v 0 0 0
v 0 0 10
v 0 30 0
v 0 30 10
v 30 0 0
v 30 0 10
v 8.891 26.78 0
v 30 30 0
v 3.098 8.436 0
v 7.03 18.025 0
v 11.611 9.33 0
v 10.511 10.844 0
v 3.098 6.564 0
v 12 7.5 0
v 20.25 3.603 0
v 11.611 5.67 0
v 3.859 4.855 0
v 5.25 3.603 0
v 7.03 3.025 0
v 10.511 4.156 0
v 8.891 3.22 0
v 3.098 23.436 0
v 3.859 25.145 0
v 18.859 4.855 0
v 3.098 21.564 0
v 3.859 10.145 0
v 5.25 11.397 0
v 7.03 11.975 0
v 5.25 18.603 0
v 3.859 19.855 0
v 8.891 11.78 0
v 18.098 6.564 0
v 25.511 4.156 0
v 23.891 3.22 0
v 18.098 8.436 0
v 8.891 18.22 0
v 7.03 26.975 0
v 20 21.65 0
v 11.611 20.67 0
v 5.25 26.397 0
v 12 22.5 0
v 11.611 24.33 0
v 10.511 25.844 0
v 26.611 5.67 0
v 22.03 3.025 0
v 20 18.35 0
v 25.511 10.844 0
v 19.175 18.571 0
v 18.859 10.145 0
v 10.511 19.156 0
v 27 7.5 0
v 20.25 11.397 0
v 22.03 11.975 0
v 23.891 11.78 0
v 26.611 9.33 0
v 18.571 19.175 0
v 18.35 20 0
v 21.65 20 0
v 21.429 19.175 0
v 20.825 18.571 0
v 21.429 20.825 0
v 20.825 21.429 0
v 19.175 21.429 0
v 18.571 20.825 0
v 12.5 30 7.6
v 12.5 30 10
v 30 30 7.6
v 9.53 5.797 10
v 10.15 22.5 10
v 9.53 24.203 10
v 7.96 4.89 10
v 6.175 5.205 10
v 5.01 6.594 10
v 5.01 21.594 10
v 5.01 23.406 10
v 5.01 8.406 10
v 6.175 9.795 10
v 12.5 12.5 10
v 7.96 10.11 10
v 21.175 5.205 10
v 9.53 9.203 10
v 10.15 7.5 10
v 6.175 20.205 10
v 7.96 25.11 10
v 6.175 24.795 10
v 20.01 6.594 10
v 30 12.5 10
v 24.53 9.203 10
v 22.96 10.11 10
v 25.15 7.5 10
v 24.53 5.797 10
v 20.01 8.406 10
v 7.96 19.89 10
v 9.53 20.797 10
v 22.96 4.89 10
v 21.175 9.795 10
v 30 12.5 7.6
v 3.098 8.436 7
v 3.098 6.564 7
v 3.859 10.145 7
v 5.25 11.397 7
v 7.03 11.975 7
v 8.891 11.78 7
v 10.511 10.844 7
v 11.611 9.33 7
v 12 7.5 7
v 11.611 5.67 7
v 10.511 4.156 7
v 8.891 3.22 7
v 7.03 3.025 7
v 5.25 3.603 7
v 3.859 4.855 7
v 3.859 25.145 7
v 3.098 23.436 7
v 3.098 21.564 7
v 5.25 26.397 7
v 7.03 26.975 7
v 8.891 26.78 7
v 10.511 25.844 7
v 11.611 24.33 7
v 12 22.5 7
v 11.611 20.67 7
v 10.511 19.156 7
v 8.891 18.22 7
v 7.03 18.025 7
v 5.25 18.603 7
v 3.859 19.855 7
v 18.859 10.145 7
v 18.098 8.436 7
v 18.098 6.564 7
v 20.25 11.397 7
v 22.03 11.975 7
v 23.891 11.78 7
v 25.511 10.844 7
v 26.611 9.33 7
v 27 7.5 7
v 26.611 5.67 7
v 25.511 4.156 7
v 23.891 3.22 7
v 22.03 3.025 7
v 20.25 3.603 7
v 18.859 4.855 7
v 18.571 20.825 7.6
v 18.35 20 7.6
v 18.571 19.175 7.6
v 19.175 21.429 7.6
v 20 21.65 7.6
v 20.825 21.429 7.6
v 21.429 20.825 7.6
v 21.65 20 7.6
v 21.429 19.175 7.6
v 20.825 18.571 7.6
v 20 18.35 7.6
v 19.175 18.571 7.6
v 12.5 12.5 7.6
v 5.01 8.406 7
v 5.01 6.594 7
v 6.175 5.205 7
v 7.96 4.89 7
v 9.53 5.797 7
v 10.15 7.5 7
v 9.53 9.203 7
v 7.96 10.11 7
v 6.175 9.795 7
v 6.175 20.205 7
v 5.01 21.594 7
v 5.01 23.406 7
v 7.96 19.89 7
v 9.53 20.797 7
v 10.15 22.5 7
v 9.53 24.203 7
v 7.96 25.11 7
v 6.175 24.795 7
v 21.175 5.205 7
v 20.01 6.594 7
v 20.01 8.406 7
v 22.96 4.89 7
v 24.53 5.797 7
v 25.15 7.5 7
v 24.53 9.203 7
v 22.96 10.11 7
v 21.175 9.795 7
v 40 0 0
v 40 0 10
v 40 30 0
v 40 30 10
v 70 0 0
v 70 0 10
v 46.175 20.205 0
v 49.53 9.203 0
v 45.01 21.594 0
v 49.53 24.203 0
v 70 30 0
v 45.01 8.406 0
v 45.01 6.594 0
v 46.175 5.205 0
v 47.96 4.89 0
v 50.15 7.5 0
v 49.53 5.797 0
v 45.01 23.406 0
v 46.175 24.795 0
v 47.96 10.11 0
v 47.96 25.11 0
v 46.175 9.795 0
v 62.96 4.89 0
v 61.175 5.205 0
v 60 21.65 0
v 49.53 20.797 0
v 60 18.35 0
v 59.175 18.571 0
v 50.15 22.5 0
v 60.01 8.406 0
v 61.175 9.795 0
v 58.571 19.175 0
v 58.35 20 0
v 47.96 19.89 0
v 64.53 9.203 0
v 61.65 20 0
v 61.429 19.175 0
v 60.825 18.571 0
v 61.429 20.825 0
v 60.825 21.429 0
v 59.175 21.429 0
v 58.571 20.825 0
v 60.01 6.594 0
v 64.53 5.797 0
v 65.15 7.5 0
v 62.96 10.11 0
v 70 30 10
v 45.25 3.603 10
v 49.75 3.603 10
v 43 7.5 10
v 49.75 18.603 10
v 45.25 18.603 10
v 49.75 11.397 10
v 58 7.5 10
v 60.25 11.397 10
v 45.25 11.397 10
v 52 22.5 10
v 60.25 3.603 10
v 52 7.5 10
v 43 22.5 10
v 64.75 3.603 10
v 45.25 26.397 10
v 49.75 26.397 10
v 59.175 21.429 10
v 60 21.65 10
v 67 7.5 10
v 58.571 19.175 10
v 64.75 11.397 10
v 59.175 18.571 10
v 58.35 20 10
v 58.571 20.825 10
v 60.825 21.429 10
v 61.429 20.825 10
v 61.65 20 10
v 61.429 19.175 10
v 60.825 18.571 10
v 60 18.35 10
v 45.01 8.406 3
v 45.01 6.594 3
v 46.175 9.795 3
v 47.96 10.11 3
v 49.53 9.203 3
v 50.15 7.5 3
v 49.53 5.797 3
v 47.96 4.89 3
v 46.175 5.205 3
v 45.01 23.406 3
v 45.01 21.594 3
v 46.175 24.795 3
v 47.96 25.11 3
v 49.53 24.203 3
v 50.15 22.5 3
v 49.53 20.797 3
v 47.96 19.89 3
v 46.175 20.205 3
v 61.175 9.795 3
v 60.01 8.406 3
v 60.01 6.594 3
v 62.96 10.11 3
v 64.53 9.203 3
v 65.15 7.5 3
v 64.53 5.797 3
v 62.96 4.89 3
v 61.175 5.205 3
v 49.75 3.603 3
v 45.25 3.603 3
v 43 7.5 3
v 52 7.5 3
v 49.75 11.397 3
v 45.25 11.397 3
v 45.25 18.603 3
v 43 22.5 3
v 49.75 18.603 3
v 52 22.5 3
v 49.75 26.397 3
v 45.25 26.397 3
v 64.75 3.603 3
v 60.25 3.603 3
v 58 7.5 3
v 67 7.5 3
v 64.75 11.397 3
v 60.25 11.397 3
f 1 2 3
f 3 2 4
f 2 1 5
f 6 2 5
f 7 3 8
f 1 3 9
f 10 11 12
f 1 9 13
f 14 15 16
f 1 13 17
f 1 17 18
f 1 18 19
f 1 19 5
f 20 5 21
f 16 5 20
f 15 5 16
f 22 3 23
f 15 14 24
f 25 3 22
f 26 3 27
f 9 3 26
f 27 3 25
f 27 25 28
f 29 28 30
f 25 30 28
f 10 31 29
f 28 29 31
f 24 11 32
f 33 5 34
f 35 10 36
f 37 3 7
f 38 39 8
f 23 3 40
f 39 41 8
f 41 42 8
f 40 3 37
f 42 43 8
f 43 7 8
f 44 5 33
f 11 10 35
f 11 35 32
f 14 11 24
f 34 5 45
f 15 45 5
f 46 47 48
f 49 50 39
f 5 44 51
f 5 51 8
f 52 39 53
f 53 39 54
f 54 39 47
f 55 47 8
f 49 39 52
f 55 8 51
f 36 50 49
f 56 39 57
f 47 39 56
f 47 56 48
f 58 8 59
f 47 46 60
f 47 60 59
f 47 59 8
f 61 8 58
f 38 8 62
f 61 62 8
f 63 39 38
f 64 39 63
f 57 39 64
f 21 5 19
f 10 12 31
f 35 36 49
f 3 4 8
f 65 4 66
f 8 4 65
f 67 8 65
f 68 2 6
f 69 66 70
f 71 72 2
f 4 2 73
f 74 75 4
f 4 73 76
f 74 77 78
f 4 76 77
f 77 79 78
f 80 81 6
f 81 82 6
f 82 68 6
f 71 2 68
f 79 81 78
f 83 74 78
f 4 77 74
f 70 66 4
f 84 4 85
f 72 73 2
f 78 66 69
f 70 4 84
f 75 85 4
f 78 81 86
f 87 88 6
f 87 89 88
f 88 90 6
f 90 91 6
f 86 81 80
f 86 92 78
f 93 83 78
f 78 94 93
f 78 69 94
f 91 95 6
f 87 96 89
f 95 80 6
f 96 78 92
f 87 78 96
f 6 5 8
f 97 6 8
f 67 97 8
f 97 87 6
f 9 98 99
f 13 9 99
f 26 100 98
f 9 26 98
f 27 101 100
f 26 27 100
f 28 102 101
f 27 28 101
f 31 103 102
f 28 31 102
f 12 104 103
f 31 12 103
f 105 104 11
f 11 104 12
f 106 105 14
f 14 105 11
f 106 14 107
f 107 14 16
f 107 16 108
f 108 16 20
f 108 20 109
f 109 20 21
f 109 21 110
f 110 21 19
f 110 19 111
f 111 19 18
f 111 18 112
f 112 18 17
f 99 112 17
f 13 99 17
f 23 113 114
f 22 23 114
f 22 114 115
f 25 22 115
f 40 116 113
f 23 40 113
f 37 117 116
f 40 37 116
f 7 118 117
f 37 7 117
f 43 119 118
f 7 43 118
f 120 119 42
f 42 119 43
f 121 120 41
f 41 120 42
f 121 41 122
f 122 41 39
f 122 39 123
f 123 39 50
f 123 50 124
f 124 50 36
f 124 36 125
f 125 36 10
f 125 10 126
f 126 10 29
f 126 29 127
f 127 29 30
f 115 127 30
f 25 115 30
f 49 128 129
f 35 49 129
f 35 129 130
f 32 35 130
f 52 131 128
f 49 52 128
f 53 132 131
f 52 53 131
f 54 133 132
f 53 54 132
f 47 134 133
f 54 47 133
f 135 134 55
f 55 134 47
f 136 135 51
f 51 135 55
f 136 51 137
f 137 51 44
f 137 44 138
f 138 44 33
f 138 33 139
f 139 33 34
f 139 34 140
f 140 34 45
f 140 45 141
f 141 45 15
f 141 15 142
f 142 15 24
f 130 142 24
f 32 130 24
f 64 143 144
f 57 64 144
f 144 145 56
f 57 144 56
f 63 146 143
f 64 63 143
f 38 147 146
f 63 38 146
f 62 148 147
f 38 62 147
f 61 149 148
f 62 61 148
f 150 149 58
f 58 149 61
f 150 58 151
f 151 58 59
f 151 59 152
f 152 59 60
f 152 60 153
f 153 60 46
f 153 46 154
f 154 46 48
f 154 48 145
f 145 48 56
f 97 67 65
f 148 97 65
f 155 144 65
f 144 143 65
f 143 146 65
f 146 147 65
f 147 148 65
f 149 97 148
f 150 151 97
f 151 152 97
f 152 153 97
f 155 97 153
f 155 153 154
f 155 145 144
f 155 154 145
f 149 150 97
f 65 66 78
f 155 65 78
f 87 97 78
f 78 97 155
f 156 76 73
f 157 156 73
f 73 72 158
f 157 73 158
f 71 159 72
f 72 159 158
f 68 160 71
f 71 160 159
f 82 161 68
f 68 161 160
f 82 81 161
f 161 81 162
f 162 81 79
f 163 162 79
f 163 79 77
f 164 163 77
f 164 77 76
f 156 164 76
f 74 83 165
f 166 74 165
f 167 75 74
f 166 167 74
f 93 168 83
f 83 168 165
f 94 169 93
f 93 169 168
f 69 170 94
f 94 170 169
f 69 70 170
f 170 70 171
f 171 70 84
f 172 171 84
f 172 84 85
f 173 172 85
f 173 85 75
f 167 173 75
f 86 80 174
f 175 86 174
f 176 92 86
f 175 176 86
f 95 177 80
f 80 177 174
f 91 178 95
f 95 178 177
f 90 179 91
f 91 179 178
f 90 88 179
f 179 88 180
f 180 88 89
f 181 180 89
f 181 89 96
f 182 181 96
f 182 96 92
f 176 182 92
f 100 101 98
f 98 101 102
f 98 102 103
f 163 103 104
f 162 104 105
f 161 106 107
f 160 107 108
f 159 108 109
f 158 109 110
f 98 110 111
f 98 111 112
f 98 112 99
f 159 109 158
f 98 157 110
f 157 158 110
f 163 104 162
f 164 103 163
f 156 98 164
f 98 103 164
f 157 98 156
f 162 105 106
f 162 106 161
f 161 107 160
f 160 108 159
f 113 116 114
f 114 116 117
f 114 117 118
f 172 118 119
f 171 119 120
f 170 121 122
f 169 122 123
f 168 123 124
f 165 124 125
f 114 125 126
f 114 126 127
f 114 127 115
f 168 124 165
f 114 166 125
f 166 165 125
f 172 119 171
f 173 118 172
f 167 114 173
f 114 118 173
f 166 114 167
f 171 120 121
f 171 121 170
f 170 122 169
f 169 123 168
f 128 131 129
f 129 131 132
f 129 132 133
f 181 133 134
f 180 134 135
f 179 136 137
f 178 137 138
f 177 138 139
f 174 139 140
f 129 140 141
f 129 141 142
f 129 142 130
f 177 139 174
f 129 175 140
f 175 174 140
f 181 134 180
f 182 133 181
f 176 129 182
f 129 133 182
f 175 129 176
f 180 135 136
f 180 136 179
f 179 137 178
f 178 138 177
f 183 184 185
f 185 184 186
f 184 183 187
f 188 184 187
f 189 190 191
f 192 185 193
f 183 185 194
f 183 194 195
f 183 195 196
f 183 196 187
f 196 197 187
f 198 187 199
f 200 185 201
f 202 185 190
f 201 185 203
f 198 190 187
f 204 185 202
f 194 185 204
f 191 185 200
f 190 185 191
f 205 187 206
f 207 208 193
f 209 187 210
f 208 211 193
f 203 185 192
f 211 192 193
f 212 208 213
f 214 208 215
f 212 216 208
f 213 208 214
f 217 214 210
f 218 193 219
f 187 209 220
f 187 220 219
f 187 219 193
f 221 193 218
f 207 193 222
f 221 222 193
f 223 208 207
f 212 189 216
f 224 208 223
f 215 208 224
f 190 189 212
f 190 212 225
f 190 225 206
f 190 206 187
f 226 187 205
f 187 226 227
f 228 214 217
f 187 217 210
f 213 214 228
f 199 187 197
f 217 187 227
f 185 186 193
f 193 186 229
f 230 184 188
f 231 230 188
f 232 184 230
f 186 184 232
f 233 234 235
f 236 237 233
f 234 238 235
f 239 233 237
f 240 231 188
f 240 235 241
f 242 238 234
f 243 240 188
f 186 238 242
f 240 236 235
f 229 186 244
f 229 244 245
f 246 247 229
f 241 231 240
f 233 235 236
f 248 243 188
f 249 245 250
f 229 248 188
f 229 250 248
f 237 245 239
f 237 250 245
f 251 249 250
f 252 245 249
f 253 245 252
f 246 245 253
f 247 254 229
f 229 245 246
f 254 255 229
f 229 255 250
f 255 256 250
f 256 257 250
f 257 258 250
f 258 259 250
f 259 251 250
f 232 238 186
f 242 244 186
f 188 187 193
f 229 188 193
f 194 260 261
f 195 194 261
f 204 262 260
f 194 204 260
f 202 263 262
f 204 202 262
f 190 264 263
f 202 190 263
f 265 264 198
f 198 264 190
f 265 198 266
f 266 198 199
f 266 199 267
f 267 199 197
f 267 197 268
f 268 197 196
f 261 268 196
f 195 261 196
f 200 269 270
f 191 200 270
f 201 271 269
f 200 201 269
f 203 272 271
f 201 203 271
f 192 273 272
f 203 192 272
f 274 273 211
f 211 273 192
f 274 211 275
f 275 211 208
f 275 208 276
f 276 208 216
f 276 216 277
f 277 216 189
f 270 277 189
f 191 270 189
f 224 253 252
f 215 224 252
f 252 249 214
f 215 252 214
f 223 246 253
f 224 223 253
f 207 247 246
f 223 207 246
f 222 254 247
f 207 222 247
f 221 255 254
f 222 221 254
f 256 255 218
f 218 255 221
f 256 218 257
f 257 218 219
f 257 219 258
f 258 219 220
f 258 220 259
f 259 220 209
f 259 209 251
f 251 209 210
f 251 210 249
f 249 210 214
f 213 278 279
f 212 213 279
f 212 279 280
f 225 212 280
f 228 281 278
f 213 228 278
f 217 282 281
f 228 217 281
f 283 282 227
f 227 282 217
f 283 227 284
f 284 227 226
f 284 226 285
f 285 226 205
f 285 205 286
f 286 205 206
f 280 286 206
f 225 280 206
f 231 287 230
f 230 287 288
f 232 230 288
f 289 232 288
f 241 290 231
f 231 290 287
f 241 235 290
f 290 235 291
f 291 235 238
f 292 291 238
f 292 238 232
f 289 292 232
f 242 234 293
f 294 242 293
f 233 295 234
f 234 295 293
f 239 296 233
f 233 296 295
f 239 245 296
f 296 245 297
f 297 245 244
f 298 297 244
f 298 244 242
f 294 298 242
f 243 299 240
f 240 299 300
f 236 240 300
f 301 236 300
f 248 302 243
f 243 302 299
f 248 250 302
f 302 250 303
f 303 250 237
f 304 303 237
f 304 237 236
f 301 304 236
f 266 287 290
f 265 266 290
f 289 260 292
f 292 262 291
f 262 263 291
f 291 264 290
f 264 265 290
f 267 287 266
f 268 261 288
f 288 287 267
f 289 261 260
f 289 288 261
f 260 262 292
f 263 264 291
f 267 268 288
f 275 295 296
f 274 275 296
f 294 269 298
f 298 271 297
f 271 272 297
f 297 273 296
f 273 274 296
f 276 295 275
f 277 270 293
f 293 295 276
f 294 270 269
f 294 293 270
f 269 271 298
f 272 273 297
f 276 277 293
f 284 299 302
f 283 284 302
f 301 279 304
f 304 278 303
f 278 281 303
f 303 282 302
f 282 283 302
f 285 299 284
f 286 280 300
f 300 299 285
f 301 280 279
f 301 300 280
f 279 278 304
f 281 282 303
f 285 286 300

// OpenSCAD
difference() {
cube([30,30,10]);
translate([12.5,12.5,7.6])
cube([30,30,10]);
translate([20,20,0])
cylinder($fn=12,r=3.3/2,h=100,center=true);
translate([22.5,7.5,0])
cylinder(r=5.3/2,h=100,center=true);
translate([7.5,22.5,0])
cylinder(r=5.3/2,h=100,center=true);
translate([7.5,7.5,0])
cylinder(r=5.3/2,h=100,center=true);


translate([22.5,7.5,-1])
cylinder(r=9/2,h=8);
translate([7.5,22.5,-1])
cylinder(r=9/2,h=8);
translate([7.5,7.5,-1])
cylinder(r=9/2,h=8);
}

translate([40,0,0])
difference() {
cube([30,30,10]);
translate([20,20,0])
cylinder($fn=12,r=3.3/2,h=100,center=true);
translate([22.5,7.5,0])
cylinder(r=5.3/2,h=100,center=true);
translate([7.5,22.5,0])
cylinder(r=5.3/2,h=100,center=true);
translate([7.5,7.5,0])
cylinder(r=5.3/2,h=100,center=true);


translate([22.5,7.5,8])
cylinder($fn=6,r=9/2,h=10,center=true);
translate([7.5,22.5,8])
cylinder($fn=6,r=9/2,h=10,center=true);
translate([7.5,7.5,8])
cylinder($fn=6, r=9/2,h=10,center=true);
}
